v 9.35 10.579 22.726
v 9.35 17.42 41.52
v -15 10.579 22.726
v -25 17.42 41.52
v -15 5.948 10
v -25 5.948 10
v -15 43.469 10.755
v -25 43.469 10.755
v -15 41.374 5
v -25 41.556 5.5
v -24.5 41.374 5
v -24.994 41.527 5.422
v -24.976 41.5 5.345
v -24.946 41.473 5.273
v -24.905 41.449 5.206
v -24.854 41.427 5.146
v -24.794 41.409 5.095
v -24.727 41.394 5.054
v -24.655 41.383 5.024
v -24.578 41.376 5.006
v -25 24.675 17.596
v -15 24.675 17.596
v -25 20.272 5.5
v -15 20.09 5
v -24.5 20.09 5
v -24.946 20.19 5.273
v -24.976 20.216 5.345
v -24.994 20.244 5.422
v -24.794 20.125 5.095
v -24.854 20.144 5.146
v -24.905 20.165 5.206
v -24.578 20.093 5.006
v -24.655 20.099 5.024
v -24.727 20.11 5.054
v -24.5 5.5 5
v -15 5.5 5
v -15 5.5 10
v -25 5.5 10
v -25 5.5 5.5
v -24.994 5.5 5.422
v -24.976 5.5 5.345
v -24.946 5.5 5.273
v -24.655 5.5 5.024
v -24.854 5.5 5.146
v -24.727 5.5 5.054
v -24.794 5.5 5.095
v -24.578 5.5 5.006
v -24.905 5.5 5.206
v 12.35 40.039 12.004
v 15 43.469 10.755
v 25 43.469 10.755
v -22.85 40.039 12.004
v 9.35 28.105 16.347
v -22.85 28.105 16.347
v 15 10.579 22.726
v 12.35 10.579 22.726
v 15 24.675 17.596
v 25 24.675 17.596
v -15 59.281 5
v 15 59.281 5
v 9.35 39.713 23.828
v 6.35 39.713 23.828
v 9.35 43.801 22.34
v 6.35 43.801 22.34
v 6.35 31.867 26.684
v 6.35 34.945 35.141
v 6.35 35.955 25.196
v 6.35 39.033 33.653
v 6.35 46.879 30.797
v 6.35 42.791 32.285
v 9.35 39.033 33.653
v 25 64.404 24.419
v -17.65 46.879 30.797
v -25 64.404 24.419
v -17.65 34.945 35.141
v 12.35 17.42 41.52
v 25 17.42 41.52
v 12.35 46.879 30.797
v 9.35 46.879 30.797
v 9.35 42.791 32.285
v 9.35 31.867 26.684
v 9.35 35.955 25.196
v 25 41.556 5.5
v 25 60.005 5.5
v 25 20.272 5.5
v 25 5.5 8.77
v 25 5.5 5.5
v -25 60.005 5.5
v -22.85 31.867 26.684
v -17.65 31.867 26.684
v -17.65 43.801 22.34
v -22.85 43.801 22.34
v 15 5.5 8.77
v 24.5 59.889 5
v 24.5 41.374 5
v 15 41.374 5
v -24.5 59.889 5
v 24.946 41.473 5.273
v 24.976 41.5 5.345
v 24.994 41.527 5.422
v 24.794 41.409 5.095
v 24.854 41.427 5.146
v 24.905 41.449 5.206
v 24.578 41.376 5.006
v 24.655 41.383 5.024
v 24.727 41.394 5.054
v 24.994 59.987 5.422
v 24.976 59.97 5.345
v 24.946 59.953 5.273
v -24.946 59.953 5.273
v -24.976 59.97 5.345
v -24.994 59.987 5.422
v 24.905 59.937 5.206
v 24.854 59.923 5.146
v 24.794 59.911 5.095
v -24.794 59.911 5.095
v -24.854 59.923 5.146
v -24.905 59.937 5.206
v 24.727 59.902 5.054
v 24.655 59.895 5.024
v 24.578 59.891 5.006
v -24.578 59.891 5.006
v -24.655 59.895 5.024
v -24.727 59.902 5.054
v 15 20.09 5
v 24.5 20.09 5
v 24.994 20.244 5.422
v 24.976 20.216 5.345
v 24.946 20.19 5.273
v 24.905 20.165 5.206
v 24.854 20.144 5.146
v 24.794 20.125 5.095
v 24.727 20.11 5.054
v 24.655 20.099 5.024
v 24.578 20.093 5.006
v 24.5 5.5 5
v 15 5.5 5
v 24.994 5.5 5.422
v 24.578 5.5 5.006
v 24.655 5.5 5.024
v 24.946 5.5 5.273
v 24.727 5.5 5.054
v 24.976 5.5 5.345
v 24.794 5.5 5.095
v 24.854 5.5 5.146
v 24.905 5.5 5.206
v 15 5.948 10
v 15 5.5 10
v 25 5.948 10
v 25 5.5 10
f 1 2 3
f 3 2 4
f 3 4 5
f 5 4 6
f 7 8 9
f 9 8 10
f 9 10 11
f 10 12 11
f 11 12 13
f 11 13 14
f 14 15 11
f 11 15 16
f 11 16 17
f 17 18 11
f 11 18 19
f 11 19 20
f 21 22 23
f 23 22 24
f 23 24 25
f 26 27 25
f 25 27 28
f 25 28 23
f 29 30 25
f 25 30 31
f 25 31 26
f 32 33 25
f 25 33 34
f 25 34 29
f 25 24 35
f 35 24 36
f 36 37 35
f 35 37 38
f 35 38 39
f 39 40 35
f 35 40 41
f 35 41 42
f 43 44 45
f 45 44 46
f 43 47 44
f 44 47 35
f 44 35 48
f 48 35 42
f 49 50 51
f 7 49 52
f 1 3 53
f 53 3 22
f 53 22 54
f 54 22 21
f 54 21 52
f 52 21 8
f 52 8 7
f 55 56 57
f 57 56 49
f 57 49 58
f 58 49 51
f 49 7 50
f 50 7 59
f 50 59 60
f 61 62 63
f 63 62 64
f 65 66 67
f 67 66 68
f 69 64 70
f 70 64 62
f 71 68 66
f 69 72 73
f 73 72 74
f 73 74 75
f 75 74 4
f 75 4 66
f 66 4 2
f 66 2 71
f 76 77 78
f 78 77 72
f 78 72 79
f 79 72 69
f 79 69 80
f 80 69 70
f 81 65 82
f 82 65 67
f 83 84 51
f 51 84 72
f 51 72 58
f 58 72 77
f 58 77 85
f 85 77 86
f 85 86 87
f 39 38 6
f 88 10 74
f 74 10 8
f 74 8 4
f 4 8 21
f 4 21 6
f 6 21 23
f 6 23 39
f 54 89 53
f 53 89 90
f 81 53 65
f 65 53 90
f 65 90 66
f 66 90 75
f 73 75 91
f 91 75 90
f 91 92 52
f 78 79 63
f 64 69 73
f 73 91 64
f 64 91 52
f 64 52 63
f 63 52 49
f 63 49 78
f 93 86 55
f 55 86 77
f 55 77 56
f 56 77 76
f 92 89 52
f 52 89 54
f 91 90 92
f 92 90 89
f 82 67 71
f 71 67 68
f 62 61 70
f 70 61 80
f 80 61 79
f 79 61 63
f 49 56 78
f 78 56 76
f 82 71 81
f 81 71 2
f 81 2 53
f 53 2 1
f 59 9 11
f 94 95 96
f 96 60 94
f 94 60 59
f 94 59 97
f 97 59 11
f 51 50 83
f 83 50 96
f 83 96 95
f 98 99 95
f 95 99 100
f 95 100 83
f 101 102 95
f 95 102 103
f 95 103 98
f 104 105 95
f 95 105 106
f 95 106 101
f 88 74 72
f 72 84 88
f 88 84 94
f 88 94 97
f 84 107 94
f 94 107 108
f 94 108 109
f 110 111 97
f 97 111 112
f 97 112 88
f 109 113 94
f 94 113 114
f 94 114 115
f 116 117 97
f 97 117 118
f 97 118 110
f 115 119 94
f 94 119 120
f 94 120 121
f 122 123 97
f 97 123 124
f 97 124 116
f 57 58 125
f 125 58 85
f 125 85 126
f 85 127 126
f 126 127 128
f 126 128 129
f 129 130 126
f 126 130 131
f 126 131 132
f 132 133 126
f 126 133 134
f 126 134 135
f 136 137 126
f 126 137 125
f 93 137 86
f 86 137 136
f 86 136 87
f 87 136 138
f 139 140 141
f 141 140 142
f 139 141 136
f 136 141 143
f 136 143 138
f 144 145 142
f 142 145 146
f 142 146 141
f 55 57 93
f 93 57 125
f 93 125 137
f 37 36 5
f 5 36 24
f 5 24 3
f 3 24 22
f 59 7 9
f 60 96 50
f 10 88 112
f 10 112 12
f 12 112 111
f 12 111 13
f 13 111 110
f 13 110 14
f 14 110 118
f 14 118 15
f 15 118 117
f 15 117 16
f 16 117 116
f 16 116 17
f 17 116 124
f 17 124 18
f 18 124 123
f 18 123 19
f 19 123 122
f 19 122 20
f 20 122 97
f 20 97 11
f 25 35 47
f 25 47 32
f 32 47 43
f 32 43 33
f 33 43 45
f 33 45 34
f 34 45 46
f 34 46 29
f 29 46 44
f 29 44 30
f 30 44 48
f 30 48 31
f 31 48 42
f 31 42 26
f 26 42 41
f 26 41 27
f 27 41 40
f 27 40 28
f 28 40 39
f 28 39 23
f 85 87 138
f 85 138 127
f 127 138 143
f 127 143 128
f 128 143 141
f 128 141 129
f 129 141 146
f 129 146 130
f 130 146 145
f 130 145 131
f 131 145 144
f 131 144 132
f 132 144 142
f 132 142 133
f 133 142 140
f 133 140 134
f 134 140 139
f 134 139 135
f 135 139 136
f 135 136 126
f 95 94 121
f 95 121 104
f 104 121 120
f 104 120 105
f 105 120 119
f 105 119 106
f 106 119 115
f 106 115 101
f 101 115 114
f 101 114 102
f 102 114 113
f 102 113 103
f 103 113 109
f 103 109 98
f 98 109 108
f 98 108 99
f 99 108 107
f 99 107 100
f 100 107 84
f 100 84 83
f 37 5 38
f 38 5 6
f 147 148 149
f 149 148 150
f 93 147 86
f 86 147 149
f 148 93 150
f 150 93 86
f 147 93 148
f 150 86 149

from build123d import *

# Parameters (mm, degrees)
SKETCH2_W            = 6
SKETCH2_H            = 6
BOSS_EXTRUDE1_DEPTH  = 5
SKETCH3_W            = 200
SKETCH3_H            = 20
CUT_EXTRUDE1_DEPTH   = 5
SKETCH4_W            = 5
SKETCH4_H            = 5
CUT_EXTRUDE2_DEPTH   = 5
SKETCH6_W            = 100
SKETCH6_H            = 20
BOSS_EXTRUDE2_DEPTH  = 100
BOSS_EXTRUDE3_DEPTH  = 100
CUT_EXTRUDE4_DEPTH   = 100
BOSS_EXTRUDE5_DEPTH  = 100
SKETCH14_R           = 12.5
CUT_EXTRUDE5_DEPTH   = 100
SKETCH15_R           = 15
SKETCH15_R_2         = 12.5
BOSS_EXTRUDE6_DEPTH  = 40
SKETCH16_W           = 50
SKETCH16_H           = 61.072294376
CUT_EXTRUDE10_DEPTH  = 35
SKETCH15_4_R         = 15
SKETCH15_4_R_2       = 12.5
CUT_EXTRUDE11_DEPTH  = 15
BOSS_EXTRUDE7_DEPTH  = 5
SKETCH23_R           = 15
SKETCH23_R_2         = 12.5
BOSS_EXTRUDE8_DEPTH  = 25
SKETCH21_W           = 50
SKETCH21_H           = 55
CUT_EXTRUDE12_DEPTH  = 35
SKETCH22_W           = 50
SKETCH22_H           = 55
BOSS_EXTRUDE9_DEPTH  = 5
SKETCH23_3_R         = 12.5
CUT_EXTRUDE13_DEPTH  = 20
CUT_EXTRUDE15_DEPTH  = 3
CUT_EXTRUDE16_DEPTH  = 5
SKETCH28_3_W         = 50
SKETCH28_3_H         = 5
BOSS_EXTRUDE12_DEPTH = 5
SKETCH31_W           = 50
SKETCH31_H           = 50
SKETCH31_W_2         = 24
SKETCH31_H_2         = 12.7
BOSS_EXTRUDE13_DEPTH = 20
SKETCH31_5_W         = 5.2
SKETCH31_5_H         = 12.7
CUT_EXTRUDE17_DEPTH  = 11
CUT_EXTRUDE18_DEPTH  = 9
SKETCH34_W           = 50
SKETCH34_H           = 50
CUT_EXTRUDE19_DEPTH  = 105
CUT_EXTRUDE20_DEPTH  = 110
SKETCH38_R           = 15
SKETCH38_R_2         = 12.5
CUT_EXTRUDE21_DEPTH  = 20
SKETCH39_W           = 3
SKETCH39_H           = 31.35
CUT_EXTRUDE23_DEPTH  = 20
BOSS_EXTRUDE15_DEPTH = 50
SKETCH42_W           = 30
SKETCH42_H           = 18.394120173
CUT_EXTRUDE24_DEPTH  = 55
CUT_EXTRUDE25_DEPTH  = 55
FILLET1_R            = 0.5
BOSS_EXTRUDE16_DEPTH = 10
BOSS_EXTRUDE17_DEPTH = 10


with BuildPart() as part:
    # Sketch2 → Boss-Extrude1 (new body)
    with BuildSketch(Plane.XY):
        Polygon((-100, 75), (-100, -45), (-60, -45), (-60, -65), (0, -65), (60, -65), (60, -45), (100, -45), (100, 75), align=None)
        with Locations((55, -50)):
            Rectangle(SKETCH2_W, SKETCH2_H, mode=Mode.SUBTRACT)
        with Locations((-55, -50)):
            Rectangle(SKETCH2_W, SKETCH2_H, mode=Mode.SUBTRACT)
    extrude(amount=BOSS_EXTRUDE1_DEPTH)

    # Sketch3 → Cut-Extrude1 (cut)
    with BuildSketch(Plane.XY.offset(5)):
        with Locations((0, 65)):
            Rectangle(SKETCH3_W, SKETCH3_H)
    extrude(amount=-CUT_EXTRUDE1_DEPTH, mode=Mode.SUBTRACT)

    # Sketch4 → Cut-Extrude2 (cut)
    with BuildSketch(Plane(origin=(0, 0, 0), x_dir=(-1, 0, 0), z_dir=(0, 0, -1))):
        with Locations((-97.5, 47.5)):
            Rectangle(SKETCH4_W, SKETCH4_H)
        Polygon((95, 50), (95, 45), (97.5, 45), (100, 45), (100, 50), align=None)
        with Locations((-97.5, 5)):
            Rectangle(SKETCH4_W, SKETCH4_H)
        with Locations((97.5, 5)):
            Rectangle(SKETCH4_W, SKETCH4_H)
        with Locations((-97.5, -37.5)):
            Rectangle(SKETCH4_W, SKETCH4_H)
        Polygon((100, -35), (95, -35), (95, -40), (97.5, -40), (100, -40), align=None)
    extrude(amount=-CUT_EXTRUDE2_DEPTH, mode=Mode.SUBTRACT)

    # Sketch6 → Boss-Extrude2 (add)
    with BuildSketch(Plane(origin=(0, 0, 0), x_dir=(-1, 0, 0), z_dir=(0, 0, -1))):
        with Locations((0, -55)):
            Rectangle(SKETCH6_W, SKETCH6_H)
    extrude(amount=BOSS_EXTRUDE2_DEPTH)

    # Sketch8 → Boss-Extrude3 (add)
    with BuildSketch(Plane(origin=(50, 0, 0), x_dir=(0, 0, -1), z_dir=(1, 0, 0))):
        Polygon((42.17911114, -45), (100, -45), (100, 55), (78.57613456, 55), (63.797824283, 14.396926208), (60.37762285, 5), (56.957421417, -4.396926208), align=None)
    extrude(amount=-BOSS_EXTRUDE3_DEPTH)

    # Sketch12 → Cut-Extrude4 (cut)
    with BuildSketch(Plane(origin=(50, 0, 0), x_dir=(0, 0, -1), z_dir=(1, 0, 0))):
        Polygon((78.57613456, 55), (42.17911114, -45), (47.5, -45), (83.89702342, 55), align=None)
    extrude(amount=-CUT_EXTRUDE4_DEPTH, mode=Mode.SUBTRACT)

    # Sketch13 → Boss-Extrude5 (add)
    with BuildSketch(Plane(origin=(0, -20.530205756, -56.406276742), x_dir=(1, 0, 0), z_dir=(0, 0.3420201432707361, 0.9396926208059023))):
        with BuildLine():
            ThreePointArc((10, 27.168677492), (7.071067812, 34.239745304), (0, 37.168677492))
            ThreePointArc((0, 37.168677492), (-7.071067812, 20.09760968), (10, 27.168677492))
        make_face()
    extrude(amount=BOSS_EXTRUDE5_DEPTH)

    # Sketch14 → Cut-Extrude5 (cut)
    with BuildSketch(Plane(origin=(0, 13.671808571, 37.562985339), x_dir=(1, 0, 0), z_dir=(0, 0.34202014327073604, 0.9396926208059022))):
        with Locations((0, 27.168677492)):
            Circle(SKETCH14_R)
    extrude(amount=-CUT_EXTRUDE5_DEPTH, mode=Mode.SUBTRACT)

    # Sketch15 → Boss-Extrude6 (add)
    with BuildSketch(Plane(origin=(0, 13.671808571, 37.562985339), x_dir=(1, 0, 0), z_dir=(0, 0.3420201432707362, 0.9396926208059023))):
        with Locations((0, 27.168677492)):
            Circle(SKETCH15_R)
        with Locations((0, 27.168677492)):
            Circle(SKETCH15_R_2, mode=Mode.SUBTRACT)
    extrude(amount=-BOSS_EXTRUDE6_DEPTH)

    # Sketch16 → Cut-Extrude10 (cut)
    with BuildSketch(Plane(origin=(0, 0, -30), x_dir=(-1, 0, 0), z_dir=(0, 0, -1))):
        with Locations((0, 30.536147188)):
            Rectangle(SKETCH16_W, SKETCH16_H)
    extrude(amount=-CUT_EXTRUDE10_DEPTH, mode=Mode.SUBTRACT)


with BuildPart() as cut_extrude10_piece_1:
    # of the separate pieces the step leaves, piece 1, a body of its own (cut_extrude10_pieces)
    add(part.part.solids().sort_by_distance((-100, 55, 0))[0])

    # Sketch18 → Boss-Extrude7 (add)
    with BuildSketch(Plane.XY.offset(5)):
        Polygon((30, 55), (25, 55), (25, 0), (-25, 0), (-25, 55), (-30, 55), (-30, -5), (30, -5), (30, 0), align=None)
    extrude(amount=BOSS_EXTRUDE7_DEPTH)



with BuildPart() as cut_extrude10_piece_2:
    # of the separate pieces the step leaves, piece 2, a body of its own (cut_extrude10_pieces)
    add(part.part.solids().sort_by_distance((15, 39.202014327, 28.270750371))[0])

    # Sketch15<4> → Cut-Extrude11 (cut)
    with BuildSketch(Plane(origin=(0, 13.671808571, 37.562985339), x_dir=(1, 0, 0), z_dir=(0, 0.3420201432707362, 0.9396926208059023))):
        with Locations((0, 27.168677492)):
            Circle(SKETCH15_4_R)
        with Locations((0, 27.168677492)):
            Circle(SKETCH15_4_R_2, mode=Mode.SUBTRACT)
    extrude(amount=-CUT_EXTRUDE11_DEPTH, mode=Mode.SUBTRACT)

    # Sketch23 → Boss-Extrude8 (add)
    with BuildSketch(Plane(origin=(0, 8.541506422, 23.467596027), x_dir=(1, 0, 0), z_dir=(0, 0.34202014327073627, 0.9396926208059023))):
        with Locations((0, 27.168677492)):
            Circle(SKETCH23_R)
        with Locations((0, 27.168677492)):
            Circle(SKETCH23_R_2, mode=Mode.SUBTRACT)
    extrude(amount=-BOSS_EXTRUDE8_DEPTH)

    # Sketch21 → Cut-Extrude12 (cut)
    with BuildSketch(Plane(origin=(0, 0, -30), x_dir=(-1, 0, 0), z_dir=(0, 0, -1))):
        with Locations((0, 27.5)):
            Rectangle(SKETCH21_W, SKETCH21_H)
    extrude(amount=-CUT_EXTRUDE12_DEPTH, mode=Mode.SUBTRACT)


with BuildPart() as cut_extrude10_piece_1_1:
    add(cut_extrude10_piece_1.part)

    add(cut_extrude10_piece_2.part)  # Boss-Extrude9 merges Cut-Extrude10 piece 2
    # Sketch22 → Boss-Extrude9 (add)
    with BuildSketch(Plane(origin=(0, 0, 0), x_dir=(-1, 0, 0), z_dir=(0, 0, -1))):
        with Locations((0, 27.5)):
            Rectangle(SKETCH22_W, SKETCH22_H)
    extrude(amount=-BOSS_EXTRUDE9_DEPTH)

    # Sketch23<3> → Cut-Extrude13 (cut)
    with BuildSketch(Plane(origin=(0, 8.541506422, 23.467596027), x_dir=(1, 0, 0), z_dir=(0, 0.34202014327073627, 0.9396926208059023))):
        with Locations((0, 27.168677492)):
            Circle(SKETCH23_3_R)
    extrude(amount=-CUT_EXTRUDE13_DEPTH, mode=Mode.SUBTRACT)

    # Sketch27 → Cut-Extrude15 (cut)
    with BuildSketch(Plane(origin=(0, 8.541506422, 23.467596027), x_dir=(1, 0, 0), z_dir=(0, 0.34202014327073627, 0.9396926208059023))):
        with BuildLine():
            ThreePointArc((2, 42.034746239), (0, 42.168677492), (-2, 42.034746239))
            Line((-2, 42.034746239), (-2, 39.507640171))
            ThreePointArc((-2, 39.507640171), (0, 39.668677492), (2, 39.507640171))
            Line((2, 39.507640171), (2, 42.034746239))
        make_face()
        with BuildLine():
            Line((-12.338962679, 29.168677492), (-14.866068747, 29.168677492))
            ThreePointArc((-14.866068747, 29.168677492), (-15, 27.168677492), (-14.866068747, 25.168677492))
            Line((-14.866068747, 25.168677492), (-12.338962679, 25.168677492))
            ThreePointArc((-12.338962679, 25.168677492), (-12.5, 27.168677492), (-12.338962679, 29.168677492))
        make_face()
        with BuildLine():
            ThreePointArc((14.866068747, 25.168677492), (15, 27.168677492), (14.866068747, 29.168677492))
            Line((14.866068747, 29.168677492), (12.338962679, 29.168677492))
            ThreePointArc((12.338962679, 29.168677492), (12.5, 27.168677492), (12.338962679, 25.168677492))
            Line((12.338962679, 25.168677492), (14.866068747, 25.168677492))
        make_face()
        with BuildLine():
            ThreePointArc((2, 14.829714813), (0, 14.668677492), (-2, 14.829714813))
            Line((-2, 14.829714813), (-2, 12.302608744))
            ThreePointArc((-2, 12.302608744), (0, 12.168677492), (2, 12.302608744))
            Line((2, 12.302608744), (2, 14.829714813))
        make_face()
    extrude(amount=-CUT_EXTRUDE15_DEPTH, mode=Mode.SUBTRACT)

    # Sketch28 → Cut-Extrude16 (cut)
    with BuildSketch(Plane.XY.offset(10)):
        Polygon((25, 0), (-25, 0), (-30, 0), (-30, -5), (30, -5), (30, 0), align=None)
    extrude(amount=-CUT_EXTRUDE16_DEPTH, mode=Mode.SUBTRACT)

    # Sketch28<3> → Boss-Extrude12 (add)
    with BuildSketch(Plane.XY.offset(10)):
        with Locations((0, 2.5)):
            Rectangle(SKETCH28_3_W, SKETCH28_3_H)
    extrude(amount=-BOSS_EXTRUDE12_DEPTH)

    # Sketch31 → Boss-Extrude13 (add)
    with BuildSketch(Plane(origin=(0, 8.541506422, 23.467596027), x_dir=(1, 0, 0), z_dir=(0, 0.34202014327073627, 0.9396926208059023))):
        with Locations((0, 27.168677492)):
            Rectangle(SKETCH31_W, SKETCH31_H)
        with Locations((-5.65, 27.168677492)):
            Rectangle(SKETCH31_W_2, SKETCH31_H_2, mode=Mode.SUBTRACT)
    extrude(amount=BOSS_EXTRUDE13_DEPTH)

    # Sketch31<5> → Cut-Extrude17 (cut)
    with BuildSketch(Plane(origin=(0, 8.541506422, 23.467596027), x_dir=(1, 0, 0), z_dir=(0, 0.34202014327073627, 0.9396926208059023))):
        with Locations((8.95, 27.168677492)):
            Rectangle(SKETCH31_5_W, SKETCH31_5_H)
        with Locations((-20.25, 27.168677492)):
            Rectangle(SKETCH31_5_W, SKETCH31_5_H)
    extrude(amount=CUT_EXTRUDE17_DEPTH, mode=Mode.SUBTRACT)

    # Sketch32 → Cut-Extrude18 (cut)
    with BuildSketch(Plane(origin=(0, 15.381909287, 42.261448443), x_dir=(1, 0, 0), z_dir=(0, 0.3420201432707363, 0.9396926208059021))):
        Polygon((9.35, 29.168677492), (6.35, 29.168677492), (6.35, 27.168677492), (6.35, 25.168677492), (9.35, 25.168677492), align=None)
    extrude(amount=-CUT_EXTRUDE18_DEPTH, mode=Mode.SUBTRACT)

    # Sketch34 → Cut-Extrude19 (cut)
    with BuildSketch(Plane(origin=(0, 0, -100), x_dir=(-1, 0, 0), z_dir=(0, 0, -1))):
        Polygon((-100, 55), (-100, -65), (100, -65), (100, 55), (30, 55), (30, 0), (-30, 0), (-30, 55), align=None)
        with Locations((0, 30)):
            Rectangle(SKETCH34_W, SKETCH34_H)
    extrude(amount=-CUT_EXTRUDE19_DEPTH, mode=Mode.SUBTRACT)


with BuildPart() as cut_extrude19_piece_1:
    # of the separate pieces the step leaves, piece 1, a body of its own (cut_extrude19_pieces)
    add(cut_extrude10_piece_1_1.part.solids().sort_by_distance((-30, 55, 0))[0])


with BuildPart() as cut_extrude19_piece_2:
    # of the separate pieces the step leaves, piece 2, a body of its own (cut_extrude19_pieces)
    add(cut_extrude10_piece_1_1.part.solids().sort_by_distance((30, 55, -100))[0])


with BuildPart() as cut_extrude20_tool:
    # Sketch34<3> → Cut-Extrude20 (new body)
    with BuildSketch(Plane(origin=(0, 0, -100), x_dir=(-1, 0, 0), z_dir=(0, 0, -1))):
        Polygon((-25, 55), (-30, 55), (-30, 0), (30, 0), (30, 55), (25, 55), (25, 5), (-25, 5), align=None)
    extrude(amount=-CUT_EXTRUDE20_DEPTH)


with BuildPart() as cut_extrude19_piece_1_1:
    add(cut_extrude19_piece_1.part)

    # Cut-Extrude20: cut by cut_extrude20_tool
    add(cut_extrude20_tool.part, mode=Mode.SUBTRACT)

    # Sketch38 → Cut-Extrude21 (cut)
    with BuildSketch(Plane(origin=(0, 1.701103557, 4.673743611), x_dir=(-1, 0, 0), z_dir=(0, -0.3420201432707364, -0.9396926208059022))):
        with Locations((0, 27.168677492)):
            Circle(SKETCH38_R)
        with Locations((0, 27.168677492)):
            Circle(SKETCH38_R_2, mode=Mode.SUBTRACT)
    extrude(amount=-CUT_EXTRUDE21_DEPTH, mode=Mode.SUBTRACT)

    # Sketch39 → Cut-Extrude23 (cut)
    with BuildSketch(Plane(origin=(0, 15.381909287, 42.261448443), x_dir=(1, 0, 0), z_dir=(0, 0.3420201432707363, 0.9396926208059021))):
        with Locations((10.85, 17.843677492)):
            Rectangle(SKETCH39_W, SKETCH39_H)
    extrude(amount=-CUT_EXTRUDE23_DEPTH, mode=Mode.SUBTRACT)

    # Sketch36 → Boss-Extrude15 (add)
    with BuildSketch(Plane(origin=(25, 0, 0), x_dir=(0, 0, -1), z_dir=(1, 0, 0))):
        Polygon((5, 57.564027698), (-24.418709893, 64.404430564), (-5.624857477, 57.564027698), (-10.755159626, 43.468638386), (-5, 41.373931589), (-5, 55), (0, 55), (0, 45), (5, 45), align=None)
        Polygon((-17.595562491, 24.67478597), (-22.72586464, 10.579396658), (-8.770337016, 5.5), (-5, 5.5), (-5, 20.09037614), align=None)
    extrude(amount=-BOSS_EXTRUDE15_DEPTH)

    # Sketch42 → Cut-Extrude24 (cut)
    with BuildSketch(Plane(origin=(0, 2.037890236, -0.741731386), x_dir=(1, 0, 0), z_dir=(0, -0.9396926208059022, 0.3420201432707364))):
        with Locations((0, 15.776633978)):
            Rectangle(SKETCH42_W, SKETCH42_H)
    extrude(amount=-CUT_EXTRUDE24_DEPTH, mode=Mode.SUBTRACT)

    # Sketch43 → Cut-Extrude25 (cut)
    with BuildSketch(Plane.ZY.offset(25)):
        Polygon((5, 55), (5, 64.404430564), (-5, 64.404430564), (-5, 45), (5, 45), align=None)
    extrude(amount=-CUT_EXTRUDE25_DEPTH, mode=Mode.SUBTRACT)

    # Fillet1
    fillet1_edges = [cut_extrude19_piece_1_1.edges().sort_by_distance(p)[0] for p in [
        (-25, 50.6315736, 5),
        (-25, 12.79518807, 5),
        (25, 12.79518807, 5),
        (25, 50.6315736, 5),
    ]]
    fillet(fillet1_edges, radius=FILLET1_R)

    # Sketch45 → Boss-Extrude16 (add)
    with BuildSketch(Plane.ZY.offset(25)):
        Polygon((10, 5.947560724), (8.770337016, 5.5), (10, 5.5), align=None)
    extrude(amount=-BOSS_EXTRUDE16_DEPTH)


with BuildPart() as cut_extrude19_piece_2_1:
    add(cut_extrude19_piece_2.part)

    # Cut-Extrude20: cut by cut_extrude20_tool
    add(cut_extrude20_tool.part, mode=Mode.SUBTRACT)


with BuildPart() as body_2:
    # Sketch46 → Boss-Extrude17 (new body)
    with BuildSketch(Plane(origin=(25, 0, 0), x_dir=(0, 0, -1), z_dir=(1, 0, 0))):
        Polygon((-10, 5.5), (-8.770337016, 5.5), (-10, 5.947560724), align=None)
    extrude(amount=-BOSS_EXTRUDE17_DEPTH)


solid = Compound([cut_extrude19_piece_1_1.part, body_2.part])
